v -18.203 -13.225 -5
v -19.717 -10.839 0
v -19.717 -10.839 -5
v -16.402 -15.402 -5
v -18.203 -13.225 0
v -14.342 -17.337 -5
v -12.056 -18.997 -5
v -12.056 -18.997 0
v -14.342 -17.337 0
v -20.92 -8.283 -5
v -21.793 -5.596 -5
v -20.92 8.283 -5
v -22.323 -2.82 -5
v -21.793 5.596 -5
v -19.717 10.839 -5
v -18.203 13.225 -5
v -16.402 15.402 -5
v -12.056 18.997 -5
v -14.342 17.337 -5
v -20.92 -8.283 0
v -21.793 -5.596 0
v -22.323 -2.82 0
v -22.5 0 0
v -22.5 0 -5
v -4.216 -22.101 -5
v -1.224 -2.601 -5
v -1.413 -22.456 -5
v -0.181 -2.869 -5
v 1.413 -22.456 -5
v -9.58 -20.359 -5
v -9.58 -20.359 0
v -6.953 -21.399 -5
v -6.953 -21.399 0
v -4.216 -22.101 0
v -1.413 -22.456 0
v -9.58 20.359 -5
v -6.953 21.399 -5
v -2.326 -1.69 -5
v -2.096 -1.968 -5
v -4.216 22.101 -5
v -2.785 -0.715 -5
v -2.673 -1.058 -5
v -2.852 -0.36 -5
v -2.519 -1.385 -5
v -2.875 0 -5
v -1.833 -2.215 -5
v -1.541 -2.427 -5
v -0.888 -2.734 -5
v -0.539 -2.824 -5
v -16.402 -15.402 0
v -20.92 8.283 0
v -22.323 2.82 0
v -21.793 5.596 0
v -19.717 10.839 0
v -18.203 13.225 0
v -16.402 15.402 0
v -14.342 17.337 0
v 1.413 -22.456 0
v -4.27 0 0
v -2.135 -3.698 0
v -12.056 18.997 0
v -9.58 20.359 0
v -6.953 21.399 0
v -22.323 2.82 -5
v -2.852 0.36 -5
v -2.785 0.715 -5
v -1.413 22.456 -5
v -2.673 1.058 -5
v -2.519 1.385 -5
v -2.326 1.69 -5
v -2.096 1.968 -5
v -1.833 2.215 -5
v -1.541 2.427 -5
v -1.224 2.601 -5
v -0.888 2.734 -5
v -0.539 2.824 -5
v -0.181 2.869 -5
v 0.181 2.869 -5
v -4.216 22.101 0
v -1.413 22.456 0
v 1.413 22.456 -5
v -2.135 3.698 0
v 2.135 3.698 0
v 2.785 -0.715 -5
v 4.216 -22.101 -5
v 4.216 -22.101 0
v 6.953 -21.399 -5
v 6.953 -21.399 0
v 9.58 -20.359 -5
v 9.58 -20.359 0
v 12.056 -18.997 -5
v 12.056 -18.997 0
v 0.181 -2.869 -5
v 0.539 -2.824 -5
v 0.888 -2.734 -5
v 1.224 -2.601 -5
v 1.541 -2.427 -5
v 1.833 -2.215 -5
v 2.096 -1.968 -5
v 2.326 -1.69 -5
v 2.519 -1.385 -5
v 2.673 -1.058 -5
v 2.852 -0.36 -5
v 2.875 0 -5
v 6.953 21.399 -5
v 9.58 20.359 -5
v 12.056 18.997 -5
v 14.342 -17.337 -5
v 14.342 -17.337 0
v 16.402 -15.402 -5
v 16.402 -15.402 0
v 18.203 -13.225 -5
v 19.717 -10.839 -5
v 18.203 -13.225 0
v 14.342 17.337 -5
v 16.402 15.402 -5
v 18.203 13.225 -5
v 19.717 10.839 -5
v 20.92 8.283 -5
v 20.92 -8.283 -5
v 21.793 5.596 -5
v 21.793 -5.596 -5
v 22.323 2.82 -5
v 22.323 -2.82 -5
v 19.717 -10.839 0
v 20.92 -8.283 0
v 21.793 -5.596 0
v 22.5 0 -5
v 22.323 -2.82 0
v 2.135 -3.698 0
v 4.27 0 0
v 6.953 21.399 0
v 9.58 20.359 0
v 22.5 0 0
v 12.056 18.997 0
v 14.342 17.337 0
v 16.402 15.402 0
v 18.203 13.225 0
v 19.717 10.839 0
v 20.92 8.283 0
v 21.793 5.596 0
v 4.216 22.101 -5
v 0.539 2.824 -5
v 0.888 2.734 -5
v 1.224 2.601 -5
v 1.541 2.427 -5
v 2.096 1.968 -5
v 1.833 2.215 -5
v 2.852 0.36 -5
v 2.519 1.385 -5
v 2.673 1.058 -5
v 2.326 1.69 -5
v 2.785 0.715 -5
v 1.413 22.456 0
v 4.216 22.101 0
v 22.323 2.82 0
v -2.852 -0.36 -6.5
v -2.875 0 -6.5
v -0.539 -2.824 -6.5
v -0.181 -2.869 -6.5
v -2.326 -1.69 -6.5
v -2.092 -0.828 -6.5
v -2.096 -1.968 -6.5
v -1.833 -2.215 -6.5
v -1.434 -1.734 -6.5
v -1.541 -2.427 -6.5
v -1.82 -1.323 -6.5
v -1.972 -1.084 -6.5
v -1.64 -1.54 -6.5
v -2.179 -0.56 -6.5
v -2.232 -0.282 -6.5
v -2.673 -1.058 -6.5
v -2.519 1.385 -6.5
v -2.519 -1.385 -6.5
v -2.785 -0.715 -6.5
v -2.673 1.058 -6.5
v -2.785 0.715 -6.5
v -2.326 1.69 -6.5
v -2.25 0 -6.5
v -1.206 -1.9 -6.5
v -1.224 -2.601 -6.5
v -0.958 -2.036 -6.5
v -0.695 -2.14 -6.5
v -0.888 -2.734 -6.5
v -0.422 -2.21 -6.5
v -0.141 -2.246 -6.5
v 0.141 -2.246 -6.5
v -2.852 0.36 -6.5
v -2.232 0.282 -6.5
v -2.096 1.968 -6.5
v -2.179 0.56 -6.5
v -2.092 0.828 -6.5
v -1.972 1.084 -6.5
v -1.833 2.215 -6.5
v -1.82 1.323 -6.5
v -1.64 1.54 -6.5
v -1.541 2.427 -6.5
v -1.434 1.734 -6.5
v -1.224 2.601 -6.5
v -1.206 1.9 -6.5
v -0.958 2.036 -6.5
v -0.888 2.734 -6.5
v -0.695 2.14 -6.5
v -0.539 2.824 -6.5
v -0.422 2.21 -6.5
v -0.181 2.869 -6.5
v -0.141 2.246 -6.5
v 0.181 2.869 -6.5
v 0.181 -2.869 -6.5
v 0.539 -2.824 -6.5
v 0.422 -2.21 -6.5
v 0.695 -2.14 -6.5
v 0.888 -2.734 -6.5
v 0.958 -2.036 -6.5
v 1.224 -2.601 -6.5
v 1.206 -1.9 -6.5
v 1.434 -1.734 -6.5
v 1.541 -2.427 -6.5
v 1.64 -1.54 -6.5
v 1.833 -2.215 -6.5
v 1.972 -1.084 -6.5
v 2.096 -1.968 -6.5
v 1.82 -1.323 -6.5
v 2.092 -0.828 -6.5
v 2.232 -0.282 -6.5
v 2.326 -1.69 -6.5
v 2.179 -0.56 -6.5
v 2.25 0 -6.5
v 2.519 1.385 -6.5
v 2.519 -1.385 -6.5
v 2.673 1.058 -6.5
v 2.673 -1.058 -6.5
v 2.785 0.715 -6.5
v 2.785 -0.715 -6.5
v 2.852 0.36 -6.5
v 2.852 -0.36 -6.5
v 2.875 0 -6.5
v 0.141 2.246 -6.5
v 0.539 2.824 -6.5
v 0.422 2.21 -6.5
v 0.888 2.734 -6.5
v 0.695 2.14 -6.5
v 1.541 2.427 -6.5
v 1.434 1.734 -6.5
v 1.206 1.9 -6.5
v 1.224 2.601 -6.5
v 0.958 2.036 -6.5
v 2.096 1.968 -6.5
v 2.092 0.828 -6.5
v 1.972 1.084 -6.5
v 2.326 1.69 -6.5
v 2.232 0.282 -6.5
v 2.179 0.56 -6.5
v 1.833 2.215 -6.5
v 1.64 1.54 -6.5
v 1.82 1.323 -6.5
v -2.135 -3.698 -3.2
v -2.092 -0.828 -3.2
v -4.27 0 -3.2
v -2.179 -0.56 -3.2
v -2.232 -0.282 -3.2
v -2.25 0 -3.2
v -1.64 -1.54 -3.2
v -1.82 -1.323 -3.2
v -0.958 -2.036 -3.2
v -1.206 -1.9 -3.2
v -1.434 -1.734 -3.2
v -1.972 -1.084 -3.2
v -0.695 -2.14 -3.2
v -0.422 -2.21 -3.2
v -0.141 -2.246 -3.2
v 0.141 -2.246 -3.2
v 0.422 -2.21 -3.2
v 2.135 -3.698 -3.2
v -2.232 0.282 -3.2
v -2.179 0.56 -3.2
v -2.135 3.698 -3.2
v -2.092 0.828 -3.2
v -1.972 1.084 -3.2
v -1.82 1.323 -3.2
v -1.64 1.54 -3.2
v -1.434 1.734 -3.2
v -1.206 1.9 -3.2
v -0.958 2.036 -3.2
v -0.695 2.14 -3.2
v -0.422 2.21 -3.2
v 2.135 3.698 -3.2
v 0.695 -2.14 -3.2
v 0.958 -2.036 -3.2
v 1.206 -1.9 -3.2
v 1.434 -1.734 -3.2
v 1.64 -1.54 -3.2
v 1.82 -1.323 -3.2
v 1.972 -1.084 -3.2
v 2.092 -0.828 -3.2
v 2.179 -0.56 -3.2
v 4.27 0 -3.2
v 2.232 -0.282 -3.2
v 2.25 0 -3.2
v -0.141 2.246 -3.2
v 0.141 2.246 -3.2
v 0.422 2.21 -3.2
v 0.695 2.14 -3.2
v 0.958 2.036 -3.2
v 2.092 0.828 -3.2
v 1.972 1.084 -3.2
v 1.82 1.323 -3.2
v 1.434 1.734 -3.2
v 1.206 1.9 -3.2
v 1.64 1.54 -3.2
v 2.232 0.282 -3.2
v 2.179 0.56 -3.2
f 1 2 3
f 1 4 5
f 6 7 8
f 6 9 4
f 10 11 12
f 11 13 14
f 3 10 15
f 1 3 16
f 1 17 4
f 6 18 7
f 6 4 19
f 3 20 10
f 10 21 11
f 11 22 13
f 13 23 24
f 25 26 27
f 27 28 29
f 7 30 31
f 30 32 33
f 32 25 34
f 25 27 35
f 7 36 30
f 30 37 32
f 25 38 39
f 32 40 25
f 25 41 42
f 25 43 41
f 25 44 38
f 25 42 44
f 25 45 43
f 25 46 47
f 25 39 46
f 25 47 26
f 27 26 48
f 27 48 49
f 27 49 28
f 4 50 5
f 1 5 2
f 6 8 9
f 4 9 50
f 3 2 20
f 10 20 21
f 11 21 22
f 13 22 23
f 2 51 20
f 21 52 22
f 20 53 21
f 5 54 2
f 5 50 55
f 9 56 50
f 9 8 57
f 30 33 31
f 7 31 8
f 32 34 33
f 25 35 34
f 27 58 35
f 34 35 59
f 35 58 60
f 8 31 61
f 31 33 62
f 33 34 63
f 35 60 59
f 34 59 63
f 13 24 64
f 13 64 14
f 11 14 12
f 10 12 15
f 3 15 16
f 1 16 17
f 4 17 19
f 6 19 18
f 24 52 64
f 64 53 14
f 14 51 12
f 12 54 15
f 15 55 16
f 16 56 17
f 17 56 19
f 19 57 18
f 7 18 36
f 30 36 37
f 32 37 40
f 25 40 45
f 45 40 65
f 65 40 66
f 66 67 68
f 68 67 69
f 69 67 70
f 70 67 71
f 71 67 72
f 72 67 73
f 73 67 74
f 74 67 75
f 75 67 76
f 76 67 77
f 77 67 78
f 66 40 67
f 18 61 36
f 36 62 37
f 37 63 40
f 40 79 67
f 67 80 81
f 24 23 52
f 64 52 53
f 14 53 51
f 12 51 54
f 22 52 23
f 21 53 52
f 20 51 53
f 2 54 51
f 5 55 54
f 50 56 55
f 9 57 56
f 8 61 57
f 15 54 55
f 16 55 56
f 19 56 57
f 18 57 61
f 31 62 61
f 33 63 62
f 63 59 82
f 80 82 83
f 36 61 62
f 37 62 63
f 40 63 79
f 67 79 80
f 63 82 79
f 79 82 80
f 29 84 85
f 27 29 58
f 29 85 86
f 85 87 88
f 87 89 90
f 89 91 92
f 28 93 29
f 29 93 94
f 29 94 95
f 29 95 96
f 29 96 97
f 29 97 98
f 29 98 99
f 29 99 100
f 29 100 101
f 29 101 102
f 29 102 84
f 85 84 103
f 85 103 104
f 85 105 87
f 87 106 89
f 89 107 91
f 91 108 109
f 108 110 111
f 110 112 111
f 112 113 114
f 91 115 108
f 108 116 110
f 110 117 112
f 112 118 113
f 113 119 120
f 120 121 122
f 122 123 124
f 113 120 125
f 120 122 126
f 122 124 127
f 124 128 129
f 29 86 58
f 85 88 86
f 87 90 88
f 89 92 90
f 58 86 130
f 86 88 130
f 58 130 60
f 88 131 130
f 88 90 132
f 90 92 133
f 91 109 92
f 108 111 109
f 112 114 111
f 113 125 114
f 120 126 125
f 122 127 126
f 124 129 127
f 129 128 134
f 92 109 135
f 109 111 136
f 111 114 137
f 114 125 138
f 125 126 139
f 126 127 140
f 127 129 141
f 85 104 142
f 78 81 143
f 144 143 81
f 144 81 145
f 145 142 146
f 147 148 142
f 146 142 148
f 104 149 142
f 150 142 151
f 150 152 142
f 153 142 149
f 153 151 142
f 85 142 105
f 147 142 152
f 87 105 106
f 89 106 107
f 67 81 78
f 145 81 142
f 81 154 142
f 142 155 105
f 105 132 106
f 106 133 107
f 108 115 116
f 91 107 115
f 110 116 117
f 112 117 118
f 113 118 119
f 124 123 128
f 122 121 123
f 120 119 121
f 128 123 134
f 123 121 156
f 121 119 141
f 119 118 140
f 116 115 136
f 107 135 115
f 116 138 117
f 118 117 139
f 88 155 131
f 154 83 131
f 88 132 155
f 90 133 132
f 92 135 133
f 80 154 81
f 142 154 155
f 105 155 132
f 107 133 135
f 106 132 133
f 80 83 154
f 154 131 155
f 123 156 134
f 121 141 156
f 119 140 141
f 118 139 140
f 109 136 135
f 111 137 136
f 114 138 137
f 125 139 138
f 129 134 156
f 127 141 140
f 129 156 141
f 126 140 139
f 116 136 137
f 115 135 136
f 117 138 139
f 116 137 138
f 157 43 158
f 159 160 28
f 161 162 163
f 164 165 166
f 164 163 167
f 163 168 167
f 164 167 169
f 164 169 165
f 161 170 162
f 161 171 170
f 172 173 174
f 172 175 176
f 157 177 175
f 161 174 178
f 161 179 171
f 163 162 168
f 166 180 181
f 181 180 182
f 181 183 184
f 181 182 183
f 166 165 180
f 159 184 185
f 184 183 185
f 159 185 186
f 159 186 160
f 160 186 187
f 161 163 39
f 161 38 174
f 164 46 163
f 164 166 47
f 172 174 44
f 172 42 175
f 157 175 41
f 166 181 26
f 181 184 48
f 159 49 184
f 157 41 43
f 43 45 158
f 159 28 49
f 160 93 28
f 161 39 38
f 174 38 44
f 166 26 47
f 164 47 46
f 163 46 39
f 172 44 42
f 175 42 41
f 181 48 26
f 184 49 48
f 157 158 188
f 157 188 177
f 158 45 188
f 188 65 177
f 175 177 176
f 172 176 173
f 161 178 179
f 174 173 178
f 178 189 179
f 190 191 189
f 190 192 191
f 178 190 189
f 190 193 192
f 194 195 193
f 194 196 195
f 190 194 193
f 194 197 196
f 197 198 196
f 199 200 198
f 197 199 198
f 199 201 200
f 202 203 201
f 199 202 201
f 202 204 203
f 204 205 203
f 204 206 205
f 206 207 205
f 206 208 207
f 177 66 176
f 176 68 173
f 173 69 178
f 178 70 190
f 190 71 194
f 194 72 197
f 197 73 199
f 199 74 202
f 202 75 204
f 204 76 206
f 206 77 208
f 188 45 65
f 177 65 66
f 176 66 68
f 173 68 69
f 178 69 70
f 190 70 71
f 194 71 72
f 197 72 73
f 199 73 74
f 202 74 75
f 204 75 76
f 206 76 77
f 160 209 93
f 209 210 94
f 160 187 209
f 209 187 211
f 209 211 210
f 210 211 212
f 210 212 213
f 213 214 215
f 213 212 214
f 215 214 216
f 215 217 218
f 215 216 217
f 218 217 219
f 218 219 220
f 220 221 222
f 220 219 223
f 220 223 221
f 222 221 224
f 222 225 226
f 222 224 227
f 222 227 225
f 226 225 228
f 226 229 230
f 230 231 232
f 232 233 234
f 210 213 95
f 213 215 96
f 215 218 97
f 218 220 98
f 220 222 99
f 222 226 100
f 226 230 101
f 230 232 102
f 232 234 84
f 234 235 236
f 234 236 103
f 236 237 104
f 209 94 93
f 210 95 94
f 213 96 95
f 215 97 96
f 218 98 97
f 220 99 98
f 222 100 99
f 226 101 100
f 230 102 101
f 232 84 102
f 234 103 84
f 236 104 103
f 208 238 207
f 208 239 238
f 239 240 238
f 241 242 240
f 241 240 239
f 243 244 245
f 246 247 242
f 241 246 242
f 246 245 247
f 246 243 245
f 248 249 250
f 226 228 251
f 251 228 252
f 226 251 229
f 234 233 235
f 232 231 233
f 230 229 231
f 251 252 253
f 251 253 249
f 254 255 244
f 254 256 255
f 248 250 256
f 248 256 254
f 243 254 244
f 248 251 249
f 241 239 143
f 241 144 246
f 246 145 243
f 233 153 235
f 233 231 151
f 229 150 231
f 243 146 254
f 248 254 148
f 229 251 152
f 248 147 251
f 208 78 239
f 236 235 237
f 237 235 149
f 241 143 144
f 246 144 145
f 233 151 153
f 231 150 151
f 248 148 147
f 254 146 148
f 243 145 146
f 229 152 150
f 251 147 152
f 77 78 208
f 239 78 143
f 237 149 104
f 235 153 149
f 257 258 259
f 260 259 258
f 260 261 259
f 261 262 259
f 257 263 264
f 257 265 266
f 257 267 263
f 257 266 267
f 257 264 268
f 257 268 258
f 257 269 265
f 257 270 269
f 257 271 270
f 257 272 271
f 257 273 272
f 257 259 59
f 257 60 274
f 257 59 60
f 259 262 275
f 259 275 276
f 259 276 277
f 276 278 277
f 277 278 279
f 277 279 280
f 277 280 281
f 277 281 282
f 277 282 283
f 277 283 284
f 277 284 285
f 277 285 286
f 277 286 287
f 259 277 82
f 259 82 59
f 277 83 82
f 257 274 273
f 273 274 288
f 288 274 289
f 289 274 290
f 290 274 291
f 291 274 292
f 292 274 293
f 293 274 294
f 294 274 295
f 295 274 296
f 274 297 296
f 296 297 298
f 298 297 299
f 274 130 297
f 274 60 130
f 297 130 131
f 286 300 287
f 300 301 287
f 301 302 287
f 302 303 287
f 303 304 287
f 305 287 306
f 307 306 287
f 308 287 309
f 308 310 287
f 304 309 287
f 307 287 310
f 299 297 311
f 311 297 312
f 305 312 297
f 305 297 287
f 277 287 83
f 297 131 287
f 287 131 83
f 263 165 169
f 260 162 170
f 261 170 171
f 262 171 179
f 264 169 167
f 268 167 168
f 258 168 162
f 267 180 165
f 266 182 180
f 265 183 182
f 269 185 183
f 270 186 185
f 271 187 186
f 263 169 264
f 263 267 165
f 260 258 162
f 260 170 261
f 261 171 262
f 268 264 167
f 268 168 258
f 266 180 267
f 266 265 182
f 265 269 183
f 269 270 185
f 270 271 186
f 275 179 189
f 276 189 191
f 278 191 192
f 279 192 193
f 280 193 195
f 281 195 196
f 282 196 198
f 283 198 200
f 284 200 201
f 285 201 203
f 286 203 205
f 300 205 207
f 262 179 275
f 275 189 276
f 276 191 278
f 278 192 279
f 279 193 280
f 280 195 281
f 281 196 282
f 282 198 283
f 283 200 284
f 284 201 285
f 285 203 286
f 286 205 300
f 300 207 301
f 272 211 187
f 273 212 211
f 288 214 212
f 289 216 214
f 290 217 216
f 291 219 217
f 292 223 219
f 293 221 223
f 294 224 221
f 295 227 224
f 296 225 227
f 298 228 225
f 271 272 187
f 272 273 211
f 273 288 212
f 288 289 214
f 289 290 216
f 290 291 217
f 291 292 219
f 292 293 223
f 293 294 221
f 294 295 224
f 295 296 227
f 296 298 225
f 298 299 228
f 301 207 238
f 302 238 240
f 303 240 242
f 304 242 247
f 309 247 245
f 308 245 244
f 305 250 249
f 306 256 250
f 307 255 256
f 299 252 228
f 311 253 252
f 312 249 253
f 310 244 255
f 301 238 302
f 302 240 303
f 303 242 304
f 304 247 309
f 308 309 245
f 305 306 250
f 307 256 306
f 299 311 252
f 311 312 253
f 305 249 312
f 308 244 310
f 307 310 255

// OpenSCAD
$fn = 50;


difference() {
	union() {
		translate(v = [0, 0, -5.0000000000]) {
			cylinder(h = 5.0000000000, r = 22.5000000000);
		}
		#translate(v = [0, 0, -6.5000000000]) {
			cylinder(h = 6.5000000000, r = 2.8750000000);
		}
	}
	union() {
		translate(v = [0, 0, 0]) {
			rotate(a = [0, 0, 0]) {
				difference() {
					union() {
						translate(v = [0, 0, -3.2000000000]) {
							linear_extrude(height = 3.2000000000) {
								polygon(points = [[4.2698000000, 0.0000000000], [2.1349000000, 3.6977552691], [-2.1349000000, 3.6977552691], [-4.2698000000, 0.0000000000], [-2.1349000000, -3.6977552691], [2.1349000000, -3.6977552691]]);
							}
						}
					}
					union();
				}
			}
		}
		#translate(v = [0, 0, -100.0000000000]) {
			cylinder(h = 200, r = 2.2500000000);
		}
	}
}
